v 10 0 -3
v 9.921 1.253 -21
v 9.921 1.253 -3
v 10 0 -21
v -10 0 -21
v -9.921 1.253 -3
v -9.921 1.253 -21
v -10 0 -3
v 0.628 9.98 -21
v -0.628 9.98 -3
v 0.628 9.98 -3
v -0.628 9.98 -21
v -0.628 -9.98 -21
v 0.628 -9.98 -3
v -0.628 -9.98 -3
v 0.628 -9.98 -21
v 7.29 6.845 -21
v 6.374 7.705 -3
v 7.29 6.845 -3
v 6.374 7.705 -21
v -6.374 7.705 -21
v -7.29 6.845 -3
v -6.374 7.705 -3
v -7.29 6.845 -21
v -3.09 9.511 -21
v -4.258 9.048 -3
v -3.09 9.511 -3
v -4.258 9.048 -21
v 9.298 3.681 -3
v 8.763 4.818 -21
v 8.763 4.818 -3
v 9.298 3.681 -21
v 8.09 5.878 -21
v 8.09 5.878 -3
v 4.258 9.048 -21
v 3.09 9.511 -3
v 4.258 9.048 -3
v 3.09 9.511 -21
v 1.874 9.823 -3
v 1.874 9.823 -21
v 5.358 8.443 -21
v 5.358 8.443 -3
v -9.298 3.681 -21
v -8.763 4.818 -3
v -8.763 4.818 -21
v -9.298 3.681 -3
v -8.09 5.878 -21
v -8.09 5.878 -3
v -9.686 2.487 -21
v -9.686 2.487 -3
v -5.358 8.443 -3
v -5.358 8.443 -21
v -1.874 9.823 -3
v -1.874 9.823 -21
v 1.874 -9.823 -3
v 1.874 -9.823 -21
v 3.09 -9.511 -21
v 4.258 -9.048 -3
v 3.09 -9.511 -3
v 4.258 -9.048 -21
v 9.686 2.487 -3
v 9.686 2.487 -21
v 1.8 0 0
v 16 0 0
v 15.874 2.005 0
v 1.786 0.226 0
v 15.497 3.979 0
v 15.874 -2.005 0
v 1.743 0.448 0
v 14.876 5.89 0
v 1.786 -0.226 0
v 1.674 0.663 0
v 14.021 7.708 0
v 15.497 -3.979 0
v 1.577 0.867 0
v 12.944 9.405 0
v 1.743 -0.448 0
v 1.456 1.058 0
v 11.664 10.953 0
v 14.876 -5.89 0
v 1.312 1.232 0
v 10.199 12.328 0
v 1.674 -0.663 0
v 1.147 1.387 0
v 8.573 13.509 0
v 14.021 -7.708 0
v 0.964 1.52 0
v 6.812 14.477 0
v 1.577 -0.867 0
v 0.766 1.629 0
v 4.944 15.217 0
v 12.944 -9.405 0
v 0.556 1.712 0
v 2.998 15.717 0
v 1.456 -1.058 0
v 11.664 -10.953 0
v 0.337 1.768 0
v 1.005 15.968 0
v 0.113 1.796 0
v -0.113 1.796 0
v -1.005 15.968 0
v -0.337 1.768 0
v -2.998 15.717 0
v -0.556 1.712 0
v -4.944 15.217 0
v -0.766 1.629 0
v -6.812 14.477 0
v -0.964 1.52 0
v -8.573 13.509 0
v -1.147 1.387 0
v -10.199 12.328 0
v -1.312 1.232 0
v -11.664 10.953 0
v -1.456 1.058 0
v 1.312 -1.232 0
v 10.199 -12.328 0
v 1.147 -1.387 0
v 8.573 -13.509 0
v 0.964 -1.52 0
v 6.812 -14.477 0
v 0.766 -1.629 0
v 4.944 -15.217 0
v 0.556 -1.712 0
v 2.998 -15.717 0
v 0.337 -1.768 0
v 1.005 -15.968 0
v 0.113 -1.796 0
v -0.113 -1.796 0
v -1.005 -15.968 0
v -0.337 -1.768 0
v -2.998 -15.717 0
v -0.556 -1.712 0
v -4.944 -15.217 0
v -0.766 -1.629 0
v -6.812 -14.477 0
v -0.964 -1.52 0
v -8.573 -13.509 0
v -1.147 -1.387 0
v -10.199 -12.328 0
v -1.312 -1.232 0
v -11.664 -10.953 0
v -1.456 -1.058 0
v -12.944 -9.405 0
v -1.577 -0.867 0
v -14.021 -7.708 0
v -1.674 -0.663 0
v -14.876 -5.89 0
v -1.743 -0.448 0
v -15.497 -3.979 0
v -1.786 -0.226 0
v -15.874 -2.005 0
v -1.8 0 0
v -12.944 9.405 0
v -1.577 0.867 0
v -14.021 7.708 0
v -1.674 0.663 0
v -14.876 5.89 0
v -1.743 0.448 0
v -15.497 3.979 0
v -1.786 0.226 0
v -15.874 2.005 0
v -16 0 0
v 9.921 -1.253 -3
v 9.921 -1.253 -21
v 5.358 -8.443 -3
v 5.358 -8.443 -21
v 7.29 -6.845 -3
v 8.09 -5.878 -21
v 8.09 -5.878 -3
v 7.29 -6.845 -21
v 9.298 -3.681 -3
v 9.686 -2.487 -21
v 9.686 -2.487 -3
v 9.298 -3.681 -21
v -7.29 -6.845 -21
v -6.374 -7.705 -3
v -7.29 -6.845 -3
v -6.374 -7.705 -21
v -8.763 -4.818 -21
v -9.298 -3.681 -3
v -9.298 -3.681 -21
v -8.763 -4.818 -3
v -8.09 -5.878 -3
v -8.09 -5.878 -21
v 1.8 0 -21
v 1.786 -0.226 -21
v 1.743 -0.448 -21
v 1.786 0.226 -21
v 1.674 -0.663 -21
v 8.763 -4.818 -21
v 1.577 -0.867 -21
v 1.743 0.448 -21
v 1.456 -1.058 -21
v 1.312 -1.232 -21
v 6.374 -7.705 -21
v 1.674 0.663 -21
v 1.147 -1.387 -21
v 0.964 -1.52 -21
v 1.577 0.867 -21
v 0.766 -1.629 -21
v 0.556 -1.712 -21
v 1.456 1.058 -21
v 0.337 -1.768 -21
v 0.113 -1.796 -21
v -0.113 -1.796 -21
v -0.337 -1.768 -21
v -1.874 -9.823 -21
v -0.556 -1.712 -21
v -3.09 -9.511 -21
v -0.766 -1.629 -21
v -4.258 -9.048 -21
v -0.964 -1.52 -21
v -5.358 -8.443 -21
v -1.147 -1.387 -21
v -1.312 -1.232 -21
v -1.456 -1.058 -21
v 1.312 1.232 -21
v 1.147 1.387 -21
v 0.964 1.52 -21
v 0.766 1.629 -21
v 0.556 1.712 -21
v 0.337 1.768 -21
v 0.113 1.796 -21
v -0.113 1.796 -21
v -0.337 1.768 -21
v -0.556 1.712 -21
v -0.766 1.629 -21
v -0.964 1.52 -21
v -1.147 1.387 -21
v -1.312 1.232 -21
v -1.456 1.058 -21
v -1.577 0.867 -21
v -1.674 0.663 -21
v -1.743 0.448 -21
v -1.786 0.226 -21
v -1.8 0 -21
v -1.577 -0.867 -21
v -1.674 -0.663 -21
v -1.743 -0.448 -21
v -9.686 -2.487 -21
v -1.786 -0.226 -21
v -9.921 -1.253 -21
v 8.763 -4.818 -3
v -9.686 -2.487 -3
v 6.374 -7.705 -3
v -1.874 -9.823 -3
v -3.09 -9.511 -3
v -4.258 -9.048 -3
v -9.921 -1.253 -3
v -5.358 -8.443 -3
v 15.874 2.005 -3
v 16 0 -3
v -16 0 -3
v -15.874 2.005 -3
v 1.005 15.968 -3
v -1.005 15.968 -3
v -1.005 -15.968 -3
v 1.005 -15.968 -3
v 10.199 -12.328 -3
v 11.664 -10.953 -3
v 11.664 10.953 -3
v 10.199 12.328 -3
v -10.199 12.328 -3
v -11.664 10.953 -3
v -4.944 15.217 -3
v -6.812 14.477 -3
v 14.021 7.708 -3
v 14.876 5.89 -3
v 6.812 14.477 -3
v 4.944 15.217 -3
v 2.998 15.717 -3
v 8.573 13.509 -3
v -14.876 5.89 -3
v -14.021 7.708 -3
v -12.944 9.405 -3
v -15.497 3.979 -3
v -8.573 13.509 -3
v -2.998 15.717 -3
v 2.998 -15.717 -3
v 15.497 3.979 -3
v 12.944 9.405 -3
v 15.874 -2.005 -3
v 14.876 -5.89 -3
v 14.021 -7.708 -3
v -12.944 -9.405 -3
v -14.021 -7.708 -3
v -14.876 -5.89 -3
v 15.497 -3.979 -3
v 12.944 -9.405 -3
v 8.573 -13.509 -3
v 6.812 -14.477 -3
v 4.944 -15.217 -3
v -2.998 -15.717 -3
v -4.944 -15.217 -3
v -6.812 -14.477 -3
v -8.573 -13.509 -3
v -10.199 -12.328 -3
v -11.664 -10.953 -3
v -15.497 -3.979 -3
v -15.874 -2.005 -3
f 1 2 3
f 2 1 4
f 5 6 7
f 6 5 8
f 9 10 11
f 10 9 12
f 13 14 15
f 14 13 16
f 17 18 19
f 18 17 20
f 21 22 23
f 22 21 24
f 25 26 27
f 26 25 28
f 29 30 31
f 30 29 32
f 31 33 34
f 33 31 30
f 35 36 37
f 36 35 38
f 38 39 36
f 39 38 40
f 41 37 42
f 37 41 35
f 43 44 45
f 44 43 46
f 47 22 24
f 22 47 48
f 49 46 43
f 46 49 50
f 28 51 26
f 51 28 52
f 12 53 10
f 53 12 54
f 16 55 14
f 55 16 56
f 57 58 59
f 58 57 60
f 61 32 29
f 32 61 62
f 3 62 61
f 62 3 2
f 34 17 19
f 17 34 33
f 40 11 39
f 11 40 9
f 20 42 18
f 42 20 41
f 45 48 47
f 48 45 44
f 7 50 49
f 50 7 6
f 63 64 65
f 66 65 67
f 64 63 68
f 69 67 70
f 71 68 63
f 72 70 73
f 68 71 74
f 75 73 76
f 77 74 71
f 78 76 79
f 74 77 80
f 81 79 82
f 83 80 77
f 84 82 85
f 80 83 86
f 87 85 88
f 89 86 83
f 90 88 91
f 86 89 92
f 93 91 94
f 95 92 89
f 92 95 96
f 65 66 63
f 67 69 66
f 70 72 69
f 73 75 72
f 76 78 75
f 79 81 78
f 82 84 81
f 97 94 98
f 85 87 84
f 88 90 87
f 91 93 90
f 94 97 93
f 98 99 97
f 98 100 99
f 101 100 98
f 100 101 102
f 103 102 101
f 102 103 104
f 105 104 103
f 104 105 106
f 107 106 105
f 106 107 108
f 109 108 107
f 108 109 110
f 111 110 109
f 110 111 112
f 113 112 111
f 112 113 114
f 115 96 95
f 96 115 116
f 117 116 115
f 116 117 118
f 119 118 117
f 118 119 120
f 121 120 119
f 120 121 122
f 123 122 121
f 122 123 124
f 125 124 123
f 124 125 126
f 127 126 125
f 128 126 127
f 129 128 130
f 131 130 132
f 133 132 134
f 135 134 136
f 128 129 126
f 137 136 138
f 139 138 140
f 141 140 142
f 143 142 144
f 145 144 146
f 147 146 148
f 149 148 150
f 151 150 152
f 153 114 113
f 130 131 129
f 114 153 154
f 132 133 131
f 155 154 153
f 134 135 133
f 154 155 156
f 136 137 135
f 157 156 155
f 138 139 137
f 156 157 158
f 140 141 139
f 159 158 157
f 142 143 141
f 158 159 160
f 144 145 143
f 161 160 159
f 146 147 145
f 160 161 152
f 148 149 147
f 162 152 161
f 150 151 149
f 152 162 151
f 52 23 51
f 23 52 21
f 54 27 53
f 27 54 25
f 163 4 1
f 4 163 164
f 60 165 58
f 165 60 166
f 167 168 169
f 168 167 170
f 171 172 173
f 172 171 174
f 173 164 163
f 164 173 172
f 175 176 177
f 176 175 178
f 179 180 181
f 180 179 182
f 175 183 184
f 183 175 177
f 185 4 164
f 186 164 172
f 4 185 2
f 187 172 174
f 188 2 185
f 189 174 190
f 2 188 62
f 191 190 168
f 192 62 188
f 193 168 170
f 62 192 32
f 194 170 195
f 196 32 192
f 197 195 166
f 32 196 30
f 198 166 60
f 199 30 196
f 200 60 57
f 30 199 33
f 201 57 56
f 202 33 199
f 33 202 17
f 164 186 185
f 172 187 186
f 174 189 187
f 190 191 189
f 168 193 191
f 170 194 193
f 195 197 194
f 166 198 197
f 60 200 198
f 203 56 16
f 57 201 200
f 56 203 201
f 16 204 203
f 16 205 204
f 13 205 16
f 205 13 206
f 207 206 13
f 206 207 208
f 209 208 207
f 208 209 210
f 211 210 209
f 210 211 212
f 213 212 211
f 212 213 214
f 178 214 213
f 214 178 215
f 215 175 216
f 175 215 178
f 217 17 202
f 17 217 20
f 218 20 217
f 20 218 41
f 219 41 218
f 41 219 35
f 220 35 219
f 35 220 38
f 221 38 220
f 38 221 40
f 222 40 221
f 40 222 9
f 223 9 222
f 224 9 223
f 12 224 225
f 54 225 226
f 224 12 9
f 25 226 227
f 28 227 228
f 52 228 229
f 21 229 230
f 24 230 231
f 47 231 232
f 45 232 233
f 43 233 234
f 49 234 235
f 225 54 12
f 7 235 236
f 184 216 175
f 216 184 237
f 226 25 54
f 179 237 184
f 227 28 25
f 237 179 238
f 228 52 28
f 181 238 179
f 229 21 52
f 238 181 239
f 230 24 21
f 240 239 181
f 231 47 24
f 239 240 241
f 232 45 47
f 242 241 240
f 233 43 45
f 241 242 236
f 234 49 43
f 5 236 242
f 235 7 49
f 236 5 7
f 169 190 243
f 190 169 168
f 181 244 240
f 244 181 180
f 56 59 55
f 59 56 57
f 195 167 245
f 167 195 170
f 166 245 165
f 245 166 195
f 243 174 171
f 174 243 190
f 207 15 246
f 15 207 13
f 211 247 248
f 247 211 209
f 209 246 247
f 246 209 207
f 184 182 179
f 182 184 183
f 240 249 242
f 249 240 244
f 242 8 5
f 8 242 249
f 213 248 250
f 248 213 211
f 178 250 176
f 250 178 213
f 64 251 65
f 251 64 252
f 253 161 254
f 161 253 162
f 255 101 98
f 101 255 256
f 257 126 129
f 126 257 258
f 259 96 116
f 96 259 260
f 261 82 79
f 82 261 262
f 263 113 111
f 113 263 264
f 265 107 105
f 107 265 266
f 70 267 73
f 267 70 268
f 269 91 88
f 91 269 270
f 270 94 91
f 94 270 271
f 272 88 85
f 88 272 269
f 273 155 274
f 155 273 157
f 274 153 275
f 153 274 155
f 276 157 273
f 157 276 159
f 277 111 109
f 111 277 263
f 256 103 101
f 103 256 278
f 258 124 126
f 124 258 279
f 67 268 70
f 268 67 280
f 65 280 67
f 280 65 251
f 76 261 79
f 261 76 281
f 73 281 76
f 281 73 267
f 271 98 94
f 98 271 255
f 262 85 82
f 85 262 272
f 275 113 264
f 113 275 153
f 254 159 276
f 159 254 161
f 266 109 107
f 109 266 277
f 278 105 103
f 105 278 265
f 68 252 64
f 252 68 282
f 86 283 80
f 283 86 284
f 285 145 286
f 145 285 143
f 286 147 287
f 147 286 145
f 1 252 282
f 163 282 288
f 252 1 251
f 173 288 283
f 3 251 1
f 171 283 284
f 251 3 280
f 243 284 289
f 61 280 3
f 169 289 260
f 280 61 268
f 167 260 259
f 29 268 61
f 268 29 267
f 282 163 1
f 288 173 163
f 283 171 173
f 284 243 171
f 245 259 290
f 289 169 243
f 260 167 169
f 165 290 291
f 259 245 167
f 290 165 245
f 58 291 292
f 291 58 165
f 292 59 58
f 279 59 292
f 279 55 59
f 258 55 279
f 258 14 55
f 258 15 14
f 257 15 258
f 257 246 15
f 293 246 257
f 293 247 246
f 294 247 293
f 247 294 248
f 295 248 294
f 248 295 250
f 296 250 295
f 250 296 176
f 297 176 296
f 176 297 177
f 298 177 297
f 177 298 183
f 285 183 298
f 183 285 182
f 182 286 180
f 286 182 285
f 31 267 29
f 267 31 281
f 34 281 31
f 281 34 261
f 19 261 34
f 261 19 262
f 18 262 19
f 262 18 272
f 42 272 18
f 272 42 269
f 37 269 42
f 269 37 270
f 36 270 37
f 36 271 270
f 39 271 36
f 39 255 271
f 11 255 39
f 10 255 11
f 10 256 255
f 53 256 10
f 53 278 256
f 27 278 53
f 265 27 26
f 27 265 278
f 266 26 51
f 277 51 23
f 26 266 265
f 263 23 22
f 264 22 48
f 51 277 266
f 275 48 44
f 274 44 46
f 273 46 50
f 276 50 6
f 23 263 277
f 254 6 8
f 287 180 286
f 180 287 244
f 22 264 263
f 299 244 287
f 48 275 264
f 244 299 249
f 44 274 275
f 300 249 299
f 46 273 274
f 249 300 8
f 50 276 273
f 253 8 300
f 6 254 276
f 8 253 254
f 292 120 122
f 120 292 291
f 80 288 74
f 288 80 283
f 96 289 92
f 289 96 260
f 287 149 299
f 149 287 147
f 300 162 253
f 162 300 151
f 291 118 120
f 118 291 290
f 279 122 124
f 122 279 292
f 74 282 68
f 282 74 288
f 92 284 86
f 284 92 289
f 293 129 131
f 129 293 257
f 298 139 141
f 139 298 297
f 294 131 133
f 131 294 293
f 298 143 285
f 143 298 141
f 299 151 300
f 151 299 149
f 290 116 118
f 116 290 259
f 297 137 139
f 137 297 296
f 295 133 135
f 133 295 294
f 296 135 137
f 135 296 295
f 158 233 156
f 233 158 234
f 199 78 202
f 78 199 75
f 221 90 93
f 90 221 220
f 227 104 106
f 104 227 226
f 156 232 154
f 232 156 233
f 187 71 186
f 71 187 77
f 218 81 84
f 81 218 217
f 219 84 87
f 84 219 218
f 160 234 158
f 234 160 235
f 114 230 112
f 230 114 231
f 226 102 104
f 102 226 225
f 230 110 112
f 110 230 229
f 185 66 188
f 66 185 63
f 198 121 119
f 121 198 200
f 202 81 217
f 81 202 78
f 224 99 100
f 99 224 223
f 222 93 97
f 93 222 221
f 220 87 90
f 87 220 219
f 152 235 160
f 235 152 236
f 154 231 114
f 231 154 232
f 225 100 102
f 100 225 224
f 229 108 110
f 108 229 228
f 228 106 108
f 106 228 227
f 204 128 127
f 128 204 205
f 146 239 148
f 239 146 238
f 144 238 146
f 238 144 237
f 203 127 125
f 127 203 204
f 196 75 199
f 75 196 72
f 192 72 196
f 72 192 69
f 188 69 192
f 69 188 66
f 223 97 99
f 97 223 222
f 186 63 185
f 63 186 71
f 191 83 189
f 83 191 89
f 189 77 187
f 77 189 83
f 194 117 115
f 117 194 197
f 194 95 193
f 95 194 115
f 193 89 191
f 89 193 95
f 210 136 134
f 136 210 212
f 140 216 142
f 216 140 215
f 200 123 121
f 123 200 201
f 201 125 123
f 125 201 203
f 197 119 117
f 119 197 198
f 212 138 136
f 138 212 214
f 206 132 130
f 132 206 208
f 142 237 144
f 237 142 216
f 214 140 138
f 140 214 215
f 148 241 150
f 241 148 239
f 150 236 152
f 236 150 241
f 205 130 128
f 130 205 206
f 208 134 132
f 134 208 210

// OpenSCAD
$fn = 50;


difference() {
	union() {
		translate(v = [0, 0, -21.0000000000]) {
			cylinder(h = 21, r = 10.0000000000);
		}
		translate(v = [0, 0, -3.0000000000]) {
			cylinder(h = 3, r = 16.0000000000);
		}
	}
	union() {
		#translate(v = [0, 0, -21]) {
			cylinder(h = 21, r = 1.8000000000);
		}
	}
}
